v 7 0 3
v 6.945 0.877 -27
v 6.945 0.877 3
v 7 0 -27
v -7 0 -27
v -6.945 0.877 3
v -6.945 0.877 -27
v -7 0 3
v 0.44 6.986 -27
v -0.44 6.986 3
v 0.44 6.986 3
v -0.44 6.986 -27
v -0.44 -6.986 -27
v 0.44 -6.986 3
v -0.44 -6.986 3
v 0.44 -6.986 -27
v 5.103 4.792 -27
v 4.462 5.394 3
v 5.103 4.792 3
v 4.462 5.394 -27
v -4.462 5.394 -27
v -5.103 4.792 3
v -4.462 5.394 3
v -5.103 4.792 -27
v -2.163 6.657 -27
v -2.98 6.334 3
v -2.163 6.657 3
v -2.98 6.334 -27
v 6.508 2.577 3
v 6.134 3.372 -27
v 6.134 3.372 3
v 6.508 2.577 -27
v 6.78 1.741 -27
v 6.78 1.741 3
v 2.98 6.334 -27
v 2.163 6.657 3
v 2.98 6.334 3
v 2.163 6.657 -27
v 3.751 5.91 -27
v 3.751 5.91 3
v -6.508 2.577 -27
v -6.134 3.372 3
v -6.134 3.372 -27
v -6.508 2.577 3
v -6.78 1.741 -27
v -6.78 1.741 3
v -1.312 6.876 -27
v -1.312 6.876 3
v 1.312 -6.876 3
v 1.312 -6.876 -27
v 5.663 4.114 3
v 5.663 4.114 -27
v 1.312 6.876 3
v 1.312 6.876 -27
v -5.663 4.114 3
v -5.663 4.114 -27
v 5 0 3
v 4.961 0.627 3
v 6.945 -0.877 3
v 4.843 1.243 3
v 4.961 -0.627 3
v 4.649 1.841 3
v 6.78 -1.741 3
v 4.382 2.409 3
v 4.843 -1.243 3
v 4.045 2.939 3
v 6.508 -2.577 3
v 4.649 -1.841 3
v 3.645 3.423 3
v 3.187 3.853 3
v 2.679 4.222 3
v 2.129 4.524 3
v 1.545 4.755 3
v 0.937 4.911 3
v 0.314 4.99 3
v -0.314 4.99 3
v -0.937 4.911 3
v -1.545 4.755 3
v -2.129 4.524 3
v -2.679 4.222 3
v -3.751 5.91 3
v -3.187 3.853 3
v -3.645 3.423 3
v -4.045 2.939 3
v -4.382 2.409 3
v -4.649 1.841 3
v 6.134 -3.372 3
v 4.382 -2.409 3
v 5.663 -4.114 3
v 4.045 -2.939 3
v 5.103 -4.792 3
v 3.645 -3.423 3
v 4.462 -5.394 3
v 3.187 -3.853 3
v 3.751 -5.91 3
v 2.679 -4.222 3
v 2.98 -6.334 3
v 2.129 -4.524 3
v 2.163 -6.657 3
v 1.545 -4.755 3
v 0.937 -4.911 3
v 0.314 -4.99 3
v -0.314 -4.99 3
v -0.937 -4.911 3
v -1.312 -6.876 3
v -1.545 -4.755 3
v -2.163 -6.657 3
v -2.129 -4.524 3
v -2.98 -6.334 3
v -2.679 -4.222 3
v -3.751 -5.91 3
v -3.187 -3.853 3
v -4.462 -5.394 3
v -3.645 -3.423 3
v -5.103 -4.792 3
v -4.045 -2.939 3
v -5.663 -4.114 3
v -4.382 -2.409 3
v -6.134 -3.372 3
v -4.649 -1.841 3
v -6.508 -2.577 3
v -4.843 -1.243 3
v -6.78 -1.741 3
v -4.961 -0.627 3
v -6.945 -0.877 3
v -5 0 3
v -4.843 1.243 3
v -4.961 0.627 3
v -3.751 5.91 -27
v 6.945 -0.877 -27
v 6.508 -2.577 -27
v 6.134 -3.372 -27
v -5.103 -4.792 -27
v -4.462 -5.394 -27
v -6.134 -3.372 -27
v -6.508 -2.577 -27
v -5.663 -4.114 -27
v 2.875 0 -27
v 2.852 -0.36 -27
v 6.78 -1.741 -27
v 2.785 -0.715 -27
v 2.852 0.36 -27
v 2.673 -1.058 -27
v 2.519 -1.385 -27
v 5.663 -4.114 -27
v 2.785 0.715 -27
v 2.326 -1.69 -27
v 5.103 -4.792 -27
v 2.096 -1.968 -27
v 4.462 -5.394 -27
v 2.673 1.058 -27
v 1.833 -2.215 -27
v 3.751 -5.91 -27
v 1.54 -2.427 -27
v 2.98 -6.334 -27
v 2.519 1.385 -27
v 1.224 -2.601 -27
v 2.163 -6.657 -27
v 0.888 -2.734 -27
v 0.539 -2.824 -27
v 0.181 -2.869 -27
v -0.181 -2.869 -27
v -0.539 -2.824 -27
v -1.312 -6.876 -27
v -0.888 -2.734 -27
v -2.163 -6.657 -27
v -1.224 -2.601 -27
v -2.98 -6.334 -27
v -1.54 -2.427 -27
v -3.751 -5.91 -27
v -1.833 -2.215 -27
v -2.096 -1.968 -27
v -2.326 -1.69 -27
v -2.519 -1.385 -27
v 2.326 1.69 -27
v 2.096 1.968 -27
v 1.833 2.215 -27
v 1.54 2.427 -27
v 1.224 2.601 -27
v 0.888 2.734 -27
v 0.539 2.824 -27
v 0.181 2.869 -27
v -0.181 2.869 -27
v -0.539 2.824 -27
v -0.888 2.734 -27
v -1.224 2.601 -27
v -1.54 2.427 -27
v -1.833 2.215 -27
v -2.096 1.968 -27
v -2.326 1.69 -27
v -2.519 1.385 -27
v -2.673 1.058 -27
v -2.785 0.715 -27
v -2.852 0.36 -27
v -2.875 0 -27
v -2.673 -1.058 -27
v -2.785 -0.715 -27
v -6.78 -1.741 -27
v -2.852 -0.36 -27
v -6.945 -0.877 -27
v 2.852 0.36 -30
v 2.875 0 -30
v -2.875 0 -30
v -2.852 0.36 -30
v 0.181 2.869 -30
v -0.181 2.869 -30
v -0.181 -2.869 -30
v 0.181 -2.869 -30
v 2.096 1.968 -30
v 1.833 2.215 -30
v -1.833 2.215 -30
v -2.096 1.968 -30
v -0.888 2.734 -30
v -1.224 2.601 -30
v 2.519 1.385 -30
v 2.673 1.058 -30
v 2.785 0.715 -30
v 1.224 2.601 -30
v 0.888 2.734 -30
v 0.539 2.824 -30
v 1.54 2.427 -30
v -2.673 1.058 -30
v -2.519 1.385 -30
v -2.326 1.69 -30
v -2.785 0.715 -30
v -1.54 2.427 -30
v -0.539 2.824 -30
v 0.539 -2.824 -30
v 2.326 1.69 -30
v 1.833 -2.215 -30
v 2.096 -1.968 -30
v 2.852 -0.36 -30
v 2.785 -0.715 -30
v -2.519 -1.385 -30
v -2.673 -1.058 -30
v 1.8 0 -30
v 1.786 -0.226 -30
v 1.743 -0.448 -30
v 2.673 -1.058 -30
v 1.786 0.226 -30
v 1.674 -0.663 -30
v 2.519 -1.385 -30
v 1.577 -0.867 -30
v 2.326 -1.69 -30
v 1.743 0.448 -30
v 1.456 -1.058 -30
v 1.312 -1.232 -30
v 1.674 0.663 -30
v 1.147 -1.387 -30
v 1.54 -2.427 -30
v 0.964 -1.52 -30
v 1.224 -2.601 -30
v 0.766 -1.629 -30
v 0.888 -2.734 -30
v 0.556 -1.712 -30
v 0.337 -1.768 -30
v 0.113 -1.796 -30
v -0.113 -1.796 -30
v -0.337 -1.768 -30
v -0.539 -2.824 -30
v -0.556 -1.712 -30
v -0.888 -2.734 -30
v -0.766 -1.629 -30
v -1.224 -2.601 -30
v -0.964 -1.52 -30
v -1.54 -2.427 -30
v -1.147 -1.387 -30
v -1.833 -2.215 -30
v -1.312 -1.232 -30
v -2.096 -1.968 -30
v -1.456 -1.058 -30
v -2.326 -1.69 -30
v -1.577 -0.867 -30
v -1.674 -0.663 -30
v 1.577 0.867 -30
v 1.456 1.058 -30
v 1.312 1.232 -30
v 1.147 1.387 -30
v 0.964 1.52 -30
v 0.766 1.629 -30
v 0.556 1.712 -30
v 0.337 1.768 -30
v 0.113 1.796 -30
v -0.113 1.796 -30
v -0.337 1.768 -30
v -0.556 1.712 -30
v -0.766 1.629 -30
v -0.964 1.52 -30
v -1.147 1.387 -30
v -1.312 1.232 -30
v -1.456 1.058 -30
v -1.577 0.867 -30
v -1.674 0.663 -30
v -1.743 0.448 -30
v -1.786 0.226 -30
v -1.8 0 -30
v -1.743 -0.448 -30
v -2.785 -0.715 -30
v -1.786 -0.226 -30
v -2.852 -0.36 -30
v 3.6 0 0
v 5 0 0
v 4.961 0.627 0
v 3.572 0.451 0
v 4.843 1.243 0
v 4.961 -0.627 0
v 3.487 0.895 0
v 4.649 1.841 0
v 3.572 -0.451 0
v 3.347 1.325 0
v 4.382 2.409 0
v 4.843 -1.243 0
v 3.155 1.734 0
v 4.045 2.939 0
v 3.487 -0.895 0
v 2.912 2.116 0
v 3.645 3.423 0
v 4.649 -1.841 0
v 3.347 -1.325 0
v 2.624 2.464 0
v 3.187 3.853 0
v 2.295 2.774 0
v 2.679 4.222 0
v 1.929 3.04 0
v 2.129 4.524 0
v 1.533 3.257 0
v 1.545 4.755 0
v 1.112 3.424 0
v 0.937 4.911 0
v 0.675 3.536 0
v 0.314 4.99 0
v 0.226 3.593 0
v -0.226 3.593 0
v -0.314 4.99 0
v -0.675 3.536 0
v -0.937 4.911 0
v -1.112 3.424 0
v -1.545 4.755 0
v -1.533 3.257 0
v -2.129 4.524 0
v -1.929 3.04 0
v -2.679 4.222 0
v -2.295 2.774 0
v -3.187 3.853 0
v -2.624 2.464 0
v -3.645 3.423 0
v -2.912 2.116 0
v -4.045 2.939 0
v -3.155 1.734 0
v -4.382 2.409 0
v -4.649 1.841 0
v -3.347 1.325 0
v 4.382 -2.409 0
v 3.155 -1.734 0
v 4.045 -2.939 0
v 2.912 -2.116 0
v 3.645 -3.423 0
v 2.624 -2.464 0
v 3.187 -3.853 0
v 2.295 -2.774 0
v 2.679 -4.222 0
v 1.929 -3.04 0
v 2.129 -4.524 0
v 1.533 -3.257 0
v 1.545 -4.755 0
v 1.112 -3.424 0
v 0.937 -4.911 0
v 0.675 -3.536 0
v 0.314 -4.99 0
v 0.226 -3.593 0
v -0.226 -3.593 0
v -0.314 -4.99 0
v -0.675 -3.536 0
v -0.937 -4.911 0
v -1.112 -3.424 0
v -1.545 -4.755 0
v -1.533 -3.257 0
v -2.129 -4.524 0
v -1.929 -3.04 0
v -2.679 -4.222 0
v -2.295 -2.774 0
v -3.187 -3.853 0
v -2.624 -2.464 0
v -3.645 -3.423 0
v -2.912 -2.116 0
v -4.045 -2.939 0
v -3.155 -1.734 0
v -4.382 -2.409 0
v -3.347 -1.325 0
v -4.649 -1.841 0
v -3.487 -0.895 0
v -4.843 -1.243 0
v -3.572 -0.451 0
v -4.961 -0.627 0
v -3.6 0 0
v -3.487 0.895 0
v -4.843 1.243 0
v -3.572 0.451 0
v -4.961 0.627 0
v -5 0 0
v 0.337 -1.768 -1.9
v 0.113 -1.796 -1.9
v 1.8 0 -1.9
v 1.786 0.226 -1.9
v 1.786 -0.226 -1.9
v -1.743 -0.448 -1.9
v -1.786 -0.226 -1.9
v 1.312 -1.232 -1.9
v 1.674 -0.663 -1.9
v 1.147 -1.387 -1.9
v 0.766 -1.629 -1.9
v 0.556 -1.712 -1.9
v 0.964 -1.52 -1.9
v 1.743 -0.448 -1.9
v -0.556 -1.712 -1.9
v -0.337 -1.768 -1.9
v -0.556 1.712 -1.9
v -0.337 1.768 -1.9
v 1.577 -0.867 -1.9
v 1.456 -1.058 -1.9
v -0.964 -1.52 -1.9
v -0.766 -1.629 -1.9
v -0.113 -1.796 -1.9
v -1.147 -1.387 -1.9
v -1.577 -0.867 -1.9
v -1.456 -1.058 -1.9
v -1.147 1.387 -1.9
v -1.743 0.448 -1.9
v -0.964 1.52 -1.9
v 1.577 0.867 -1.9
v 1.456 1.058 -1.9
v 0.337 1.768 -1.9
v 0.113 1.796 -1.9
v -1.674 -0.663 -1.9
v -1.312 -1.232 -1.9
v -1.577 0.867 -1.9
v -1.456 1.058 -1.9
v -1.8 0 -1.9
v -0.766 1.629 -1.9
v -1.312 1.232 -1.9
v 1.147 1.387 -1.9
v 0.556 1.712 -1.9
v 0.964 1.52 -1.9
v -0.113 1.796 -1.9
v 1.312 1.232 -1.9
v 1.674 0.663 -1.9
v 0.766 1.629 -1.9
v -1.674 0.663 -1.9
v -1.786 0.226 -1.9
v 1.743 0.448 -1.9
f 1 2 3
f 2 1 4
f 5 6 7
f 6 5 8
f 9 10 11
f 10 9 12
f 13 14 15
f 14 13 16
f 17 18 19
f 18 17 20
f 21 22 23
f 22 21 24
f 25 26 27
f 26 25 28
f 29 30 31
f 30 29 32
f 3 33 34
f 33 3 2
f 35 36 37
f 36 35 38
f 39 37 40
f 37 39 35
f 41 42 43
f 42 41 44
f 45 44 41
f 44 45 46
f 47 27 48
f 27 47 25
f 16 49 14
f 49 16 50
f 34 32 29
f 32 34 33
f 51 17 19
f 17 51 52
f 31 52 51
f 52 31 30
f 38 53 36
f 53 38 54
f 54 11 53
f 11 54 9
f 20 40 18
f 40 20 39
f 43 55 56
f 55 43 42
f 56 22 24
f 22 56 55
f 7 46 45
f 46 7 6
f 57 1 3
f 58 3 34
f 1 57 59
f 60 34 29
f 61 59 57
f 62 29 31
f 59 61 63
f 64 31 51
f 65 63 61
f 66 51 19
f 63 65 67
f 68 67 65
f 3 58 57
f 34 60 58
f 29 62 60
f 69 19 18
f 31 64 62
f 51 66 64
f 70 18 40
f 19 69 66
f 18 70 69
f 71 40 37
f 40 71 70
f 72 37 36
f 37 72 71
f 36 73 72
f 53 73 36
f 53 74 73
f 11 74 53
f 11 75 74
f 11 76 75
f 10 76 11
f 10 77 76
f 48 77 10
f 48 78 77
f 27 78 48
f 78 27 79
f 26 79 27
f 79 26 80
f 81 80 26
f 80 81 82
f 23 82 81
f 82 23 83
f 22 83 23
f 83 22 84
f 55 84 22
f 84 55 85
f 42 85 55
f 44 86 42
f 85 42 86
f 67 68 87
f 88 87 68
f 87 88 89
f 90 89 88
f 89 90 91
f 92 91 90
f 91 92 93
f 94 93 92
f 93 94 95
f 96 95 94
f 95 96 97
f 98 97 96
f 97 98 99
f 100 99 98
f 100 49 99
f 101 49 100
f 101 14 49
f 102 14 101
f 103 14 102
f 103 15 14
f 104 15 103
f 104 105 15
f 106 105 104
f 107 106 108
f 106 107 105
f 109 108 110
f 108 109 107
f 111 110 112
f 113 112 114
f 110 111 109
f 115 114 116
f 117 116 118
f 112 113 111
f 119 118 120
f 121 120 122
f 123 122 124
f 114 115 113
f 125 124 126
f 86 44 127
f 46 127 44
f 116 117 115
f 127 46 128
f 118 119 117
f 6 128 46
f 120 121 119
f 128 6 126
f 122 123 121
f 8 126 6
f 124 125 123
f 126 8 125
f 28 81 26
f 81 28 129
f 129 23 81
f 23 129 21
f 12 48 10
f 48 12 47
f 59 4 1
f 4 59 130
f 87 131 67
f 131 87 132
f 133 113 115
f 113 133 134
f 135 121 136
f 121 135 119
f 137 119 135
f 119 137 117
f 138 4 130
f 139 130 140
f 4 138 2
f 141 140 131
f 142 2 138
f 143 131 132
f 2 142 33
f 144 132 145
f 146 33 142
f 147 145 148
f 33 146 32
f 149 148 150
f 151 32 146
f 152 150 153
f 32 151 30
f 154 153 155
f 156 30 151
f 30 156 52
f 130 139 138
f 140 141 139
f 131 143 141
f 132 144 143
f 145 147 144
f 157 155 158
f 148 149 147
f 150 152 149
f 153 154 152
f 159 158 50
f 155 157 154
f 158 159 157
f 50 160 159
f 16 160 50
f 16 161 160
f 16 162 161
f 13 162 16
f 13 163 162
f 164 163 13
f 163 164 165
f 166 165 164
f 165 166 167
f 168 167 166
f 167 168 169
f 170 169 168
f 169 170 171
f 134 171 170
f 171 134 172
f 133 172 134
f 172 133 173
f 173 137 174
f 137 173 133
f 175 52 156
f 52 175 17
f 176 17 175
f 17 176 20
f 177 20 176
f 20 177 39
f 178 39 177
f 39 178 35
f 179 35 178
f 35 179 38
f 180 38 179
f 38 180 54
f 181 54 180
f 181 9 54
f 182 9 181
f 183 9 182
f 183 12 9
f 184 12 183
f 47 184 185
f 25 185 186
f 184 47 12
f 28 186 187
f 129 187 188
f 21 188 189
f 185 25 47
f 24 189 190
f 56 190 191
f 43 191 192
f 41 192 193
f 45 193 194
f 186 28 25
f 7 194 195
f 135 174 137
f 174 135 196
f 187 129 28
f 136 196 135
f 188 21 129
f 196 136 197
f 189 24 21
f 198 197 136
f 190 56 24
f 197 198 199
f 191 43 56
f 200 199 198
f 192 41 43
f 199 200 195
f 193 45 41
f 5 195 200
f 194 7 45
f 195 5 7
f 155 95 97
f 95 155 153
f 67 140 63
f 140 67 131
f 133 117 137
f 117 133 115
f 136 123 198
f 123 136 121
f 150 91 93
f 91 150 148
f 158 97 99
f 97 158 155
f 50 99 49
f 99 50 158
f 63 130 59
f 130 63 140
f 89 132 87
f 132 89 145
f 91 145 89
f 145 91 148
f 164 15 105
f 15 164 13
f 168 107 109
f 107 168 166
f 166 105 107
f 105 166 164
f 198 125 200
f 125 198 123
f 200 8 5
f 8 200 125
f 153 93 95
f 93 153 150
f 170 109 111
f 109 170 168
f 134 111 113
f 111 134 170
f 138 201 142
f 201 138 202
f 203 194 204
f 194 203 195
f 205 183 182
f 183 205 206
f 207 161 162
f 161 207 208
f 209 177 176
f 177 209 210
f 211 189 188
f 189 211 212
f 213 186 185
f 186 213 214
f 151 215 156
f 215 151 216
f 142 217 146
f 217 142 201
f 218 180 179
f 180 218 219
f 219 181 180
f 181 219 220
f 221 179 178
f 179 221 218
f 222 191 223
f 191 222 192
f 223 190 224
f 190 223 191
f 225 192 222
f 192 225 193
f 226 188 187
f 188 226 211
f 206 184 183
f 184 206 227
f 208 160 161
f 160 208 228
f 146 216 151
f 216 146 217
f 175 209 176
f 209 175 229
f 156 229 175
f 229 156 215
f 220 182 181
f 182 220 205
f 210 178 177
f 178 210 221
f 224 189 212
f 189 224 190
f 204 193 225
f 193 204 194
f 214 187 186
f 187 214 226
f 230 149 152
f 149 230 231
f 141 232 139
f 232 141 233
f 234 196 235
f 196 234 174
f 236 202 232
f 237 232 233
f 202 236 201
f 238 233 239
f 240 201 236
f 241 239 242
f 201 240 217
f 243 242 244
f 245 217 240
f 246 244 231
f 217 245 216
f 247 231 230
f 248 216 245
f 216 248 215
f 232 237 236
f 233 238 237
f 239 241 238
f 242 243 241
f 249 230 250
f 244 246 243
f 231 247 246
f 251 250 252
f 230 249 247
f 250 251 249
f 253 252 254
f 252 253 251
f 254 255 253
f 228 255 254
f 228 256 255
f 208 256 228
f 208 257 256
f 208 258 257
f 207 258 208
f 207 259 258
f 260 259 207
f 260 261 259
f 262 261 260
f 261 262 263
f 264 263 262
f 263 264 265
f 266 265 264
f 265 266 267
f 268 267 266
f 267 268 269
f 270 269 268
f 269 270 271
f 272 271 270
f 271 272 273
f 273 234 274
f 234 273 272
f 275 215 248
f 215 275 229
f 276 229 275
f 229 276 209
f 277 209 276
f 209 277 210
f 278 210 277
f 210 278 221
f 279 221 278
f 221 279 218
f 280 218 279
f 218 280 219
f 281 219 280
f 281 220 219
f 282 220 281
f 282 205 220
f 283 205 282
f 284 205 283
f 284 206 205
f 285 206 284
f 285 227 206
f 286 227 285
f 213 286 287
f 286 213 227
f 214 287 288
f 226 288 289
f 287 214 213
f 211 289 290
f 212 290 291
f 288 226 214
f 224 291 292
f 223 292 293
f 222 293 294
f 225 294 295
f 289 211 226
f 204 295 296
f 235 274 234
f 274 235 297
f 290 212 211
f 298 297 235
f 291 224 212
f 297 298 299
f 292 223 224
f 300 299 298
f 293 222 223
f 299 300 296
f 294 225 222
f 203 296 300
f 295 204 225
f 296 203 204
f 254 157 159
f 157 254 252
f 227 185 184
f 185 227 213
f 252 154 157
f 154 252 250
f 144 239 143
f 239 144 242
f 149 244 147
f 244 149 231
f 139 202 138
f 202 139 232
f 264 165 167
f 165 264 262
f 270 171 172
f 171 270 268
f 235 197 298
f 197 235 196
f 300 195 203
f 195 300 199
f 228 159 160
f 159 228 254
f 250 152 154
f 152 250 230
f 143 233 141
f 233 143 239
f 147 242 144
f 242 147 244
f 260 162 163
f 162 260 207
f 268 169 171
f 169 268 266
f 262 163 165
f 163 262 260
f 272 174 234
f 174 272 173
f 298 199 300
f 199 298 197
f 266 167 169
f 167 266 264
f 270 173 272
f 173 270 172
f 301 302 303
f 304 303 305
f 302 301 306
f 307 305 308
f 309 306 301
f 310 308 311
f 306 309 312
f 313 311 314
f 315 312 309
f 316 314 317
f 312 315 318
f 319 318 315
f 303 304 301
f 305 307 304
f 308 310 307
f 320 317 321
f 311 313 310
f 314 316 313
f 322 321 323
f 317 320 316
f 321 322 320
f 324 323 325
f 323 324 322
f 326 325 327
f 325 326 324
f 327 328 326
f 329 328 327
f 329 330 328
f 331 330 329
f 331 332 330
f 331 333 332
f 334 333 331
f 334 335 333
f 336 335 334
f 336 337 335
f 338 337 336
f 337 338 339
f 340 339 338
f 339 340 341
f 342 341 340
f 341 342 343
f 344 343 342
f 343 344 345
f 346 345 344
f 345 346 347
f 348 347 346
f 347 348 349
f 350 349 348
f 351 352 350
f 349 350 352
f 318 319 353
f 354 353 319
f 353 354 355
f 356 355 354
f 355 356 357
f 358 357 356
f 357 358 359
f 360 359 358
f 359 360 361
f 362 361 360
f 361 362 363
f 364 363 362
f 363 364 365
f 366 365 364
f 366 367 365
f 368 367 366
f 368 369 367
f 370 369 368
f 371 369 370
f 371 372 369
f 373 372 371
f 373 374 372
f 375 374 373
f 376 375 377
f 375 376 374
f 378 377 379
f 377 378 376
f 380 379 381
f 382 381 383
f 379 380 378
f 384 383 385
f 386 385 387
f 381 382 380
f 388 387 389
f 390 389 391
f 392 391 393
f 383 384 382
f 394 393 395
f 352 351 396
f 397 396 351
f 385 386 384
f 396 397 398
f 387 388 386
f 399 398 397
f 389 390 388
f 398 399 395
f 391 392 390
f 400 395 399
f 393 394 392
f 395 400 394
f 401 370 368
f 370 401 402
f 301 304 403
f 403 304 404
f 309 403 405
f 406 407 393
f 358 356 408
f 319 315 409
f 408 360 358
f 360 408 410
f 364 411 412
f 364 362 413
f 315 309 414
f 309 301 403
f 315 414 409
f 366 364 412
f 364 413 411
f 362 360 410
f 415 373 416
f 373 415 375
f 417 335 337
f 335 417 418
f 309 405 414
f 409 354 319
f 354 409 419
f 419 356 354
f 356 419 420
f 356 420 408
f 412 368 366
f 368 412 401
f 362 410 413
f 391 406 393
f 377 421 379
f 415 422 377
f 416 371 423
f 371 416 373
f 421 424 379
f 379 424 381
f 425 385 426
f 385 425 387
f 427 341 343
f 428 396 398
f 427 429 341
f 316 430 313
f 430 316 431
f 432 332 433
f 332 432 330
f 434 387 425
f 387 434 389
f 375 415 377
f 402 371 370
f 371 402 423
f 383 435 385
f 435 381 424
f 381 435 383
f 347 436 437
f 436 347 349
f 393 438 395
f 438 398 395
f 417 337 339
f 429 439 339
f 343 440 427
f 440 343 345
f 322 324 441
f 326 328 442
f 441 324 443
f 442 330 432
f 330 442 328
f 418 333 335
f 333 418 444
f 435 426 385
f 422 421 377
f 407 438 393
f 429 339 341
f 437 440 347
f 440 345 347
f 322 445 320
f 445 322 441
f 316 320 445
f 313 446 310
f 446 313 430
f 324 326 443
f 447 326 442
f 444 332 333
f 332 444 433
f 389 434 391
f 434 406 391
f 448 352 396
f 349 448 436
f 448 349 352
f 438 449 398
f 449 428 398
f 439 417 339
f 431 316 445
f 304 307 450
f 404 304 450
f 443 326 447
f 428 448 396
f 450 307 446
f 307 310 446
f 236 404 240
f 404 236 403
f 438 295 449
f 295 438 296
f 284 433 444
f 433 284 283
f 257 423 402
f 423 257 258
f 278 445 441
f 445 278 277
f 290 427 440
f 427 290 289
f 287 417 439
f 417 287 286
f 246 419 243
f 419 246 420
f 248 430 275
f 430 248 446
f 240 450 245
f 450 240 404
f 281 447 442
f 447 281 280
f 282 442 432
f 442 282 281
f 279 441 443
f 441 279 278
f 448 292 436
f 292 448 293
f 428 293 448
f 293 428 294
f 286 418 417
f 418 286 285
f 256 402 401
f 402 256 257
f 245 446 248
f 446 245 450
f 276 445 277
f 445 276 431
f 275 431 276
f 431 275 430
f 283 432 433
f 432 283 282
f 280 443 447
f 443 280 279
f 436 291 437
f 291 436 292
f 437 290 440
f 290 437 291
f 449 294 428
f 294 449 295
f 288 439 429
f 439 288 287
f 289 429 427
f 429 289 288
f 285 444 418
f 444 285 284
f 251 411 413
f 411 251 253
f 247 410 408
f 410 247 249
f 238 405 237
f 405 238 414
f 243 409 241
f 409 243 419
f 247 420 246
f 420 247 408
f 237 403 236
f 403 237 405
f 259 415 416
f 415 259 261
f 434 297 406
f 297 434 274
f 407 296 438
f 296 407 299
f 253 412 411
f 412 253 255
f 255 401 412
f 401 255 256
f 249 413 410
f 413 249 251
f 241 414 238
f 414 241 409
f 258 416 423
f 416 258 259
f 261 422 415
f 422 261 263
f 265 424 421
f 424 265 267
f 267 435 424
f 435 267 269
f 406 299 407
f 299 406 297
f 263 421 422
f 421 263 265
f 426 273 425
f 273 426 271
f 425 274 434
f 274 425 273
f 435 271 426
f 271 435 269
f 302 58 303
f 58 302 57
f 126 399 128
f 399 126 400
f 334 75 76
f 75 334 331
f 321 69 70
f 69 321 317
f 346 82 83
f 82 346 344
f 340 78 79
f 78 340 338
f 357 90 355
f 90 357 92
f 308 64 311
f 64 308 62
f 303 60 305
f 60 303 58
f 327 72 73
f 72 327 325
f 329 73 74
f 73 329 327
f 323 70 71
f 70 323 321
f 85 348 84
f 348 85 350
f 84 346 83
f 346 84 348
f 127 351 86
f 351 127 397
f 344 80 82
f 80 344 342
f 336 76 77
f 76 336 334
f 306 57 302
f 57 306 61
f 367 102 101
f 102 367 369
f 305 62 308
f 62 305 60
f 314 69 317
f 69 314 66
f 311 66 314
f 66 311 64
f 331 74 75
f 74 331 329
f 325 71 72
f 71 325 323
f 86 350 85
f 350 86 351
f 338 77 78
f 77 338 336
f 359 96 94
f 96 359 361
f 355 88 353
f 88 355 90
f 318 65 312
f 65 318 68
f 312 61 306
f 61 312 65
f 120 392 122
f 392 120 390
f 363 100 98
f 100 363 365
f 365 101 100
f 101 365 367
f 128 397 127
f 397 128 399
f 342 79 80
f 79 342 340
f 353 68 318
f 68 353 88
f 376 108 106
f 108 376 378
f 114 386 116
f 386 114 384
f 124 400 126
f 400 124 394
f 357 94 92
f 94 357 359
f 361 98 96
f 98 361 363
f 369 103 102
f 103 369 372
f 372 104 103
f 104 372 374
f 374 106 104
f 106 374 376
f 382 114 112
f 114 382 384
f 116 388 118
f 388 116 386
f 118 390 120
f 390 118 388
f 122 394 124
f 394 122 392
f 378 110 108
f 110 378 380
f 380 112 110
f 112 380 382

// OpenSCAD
$fn = 50;

difference() {
	union() {
		translate(v = [0, 0, -27.0]) {
			cylinder(h = 30, r = 7.0);
		}
		#translate(v = [0, 0, -30.0]) {
			cylinder(h = 30, r = 2.875);
		}
	}
	union() {
		translate(v = [0, 0, 0]) {
			rotate(a = [0, 0, 0]) {
				difference() {
					union() {
						translate(v = [0, 0, -30.0]) {
							cylinder(h = 30, r = 1.5);
						}
						translate(v = [0, 0, -1.9]) {
							cylinder(h = 1.9, r1 = 1.8, r2 = 3.6);
						}
						translate(v = [0, 0, -30.0]) {
							cylinder(h = 30, r = 1.8);
						}
						translate(v = [0, 0, -30.0]) {
							cylinder(h = 30, r = 1.5);
						}
					}
					union();
				}
			}
		}
		#cylinder(h = 3, r = 5.0);
	}
}
